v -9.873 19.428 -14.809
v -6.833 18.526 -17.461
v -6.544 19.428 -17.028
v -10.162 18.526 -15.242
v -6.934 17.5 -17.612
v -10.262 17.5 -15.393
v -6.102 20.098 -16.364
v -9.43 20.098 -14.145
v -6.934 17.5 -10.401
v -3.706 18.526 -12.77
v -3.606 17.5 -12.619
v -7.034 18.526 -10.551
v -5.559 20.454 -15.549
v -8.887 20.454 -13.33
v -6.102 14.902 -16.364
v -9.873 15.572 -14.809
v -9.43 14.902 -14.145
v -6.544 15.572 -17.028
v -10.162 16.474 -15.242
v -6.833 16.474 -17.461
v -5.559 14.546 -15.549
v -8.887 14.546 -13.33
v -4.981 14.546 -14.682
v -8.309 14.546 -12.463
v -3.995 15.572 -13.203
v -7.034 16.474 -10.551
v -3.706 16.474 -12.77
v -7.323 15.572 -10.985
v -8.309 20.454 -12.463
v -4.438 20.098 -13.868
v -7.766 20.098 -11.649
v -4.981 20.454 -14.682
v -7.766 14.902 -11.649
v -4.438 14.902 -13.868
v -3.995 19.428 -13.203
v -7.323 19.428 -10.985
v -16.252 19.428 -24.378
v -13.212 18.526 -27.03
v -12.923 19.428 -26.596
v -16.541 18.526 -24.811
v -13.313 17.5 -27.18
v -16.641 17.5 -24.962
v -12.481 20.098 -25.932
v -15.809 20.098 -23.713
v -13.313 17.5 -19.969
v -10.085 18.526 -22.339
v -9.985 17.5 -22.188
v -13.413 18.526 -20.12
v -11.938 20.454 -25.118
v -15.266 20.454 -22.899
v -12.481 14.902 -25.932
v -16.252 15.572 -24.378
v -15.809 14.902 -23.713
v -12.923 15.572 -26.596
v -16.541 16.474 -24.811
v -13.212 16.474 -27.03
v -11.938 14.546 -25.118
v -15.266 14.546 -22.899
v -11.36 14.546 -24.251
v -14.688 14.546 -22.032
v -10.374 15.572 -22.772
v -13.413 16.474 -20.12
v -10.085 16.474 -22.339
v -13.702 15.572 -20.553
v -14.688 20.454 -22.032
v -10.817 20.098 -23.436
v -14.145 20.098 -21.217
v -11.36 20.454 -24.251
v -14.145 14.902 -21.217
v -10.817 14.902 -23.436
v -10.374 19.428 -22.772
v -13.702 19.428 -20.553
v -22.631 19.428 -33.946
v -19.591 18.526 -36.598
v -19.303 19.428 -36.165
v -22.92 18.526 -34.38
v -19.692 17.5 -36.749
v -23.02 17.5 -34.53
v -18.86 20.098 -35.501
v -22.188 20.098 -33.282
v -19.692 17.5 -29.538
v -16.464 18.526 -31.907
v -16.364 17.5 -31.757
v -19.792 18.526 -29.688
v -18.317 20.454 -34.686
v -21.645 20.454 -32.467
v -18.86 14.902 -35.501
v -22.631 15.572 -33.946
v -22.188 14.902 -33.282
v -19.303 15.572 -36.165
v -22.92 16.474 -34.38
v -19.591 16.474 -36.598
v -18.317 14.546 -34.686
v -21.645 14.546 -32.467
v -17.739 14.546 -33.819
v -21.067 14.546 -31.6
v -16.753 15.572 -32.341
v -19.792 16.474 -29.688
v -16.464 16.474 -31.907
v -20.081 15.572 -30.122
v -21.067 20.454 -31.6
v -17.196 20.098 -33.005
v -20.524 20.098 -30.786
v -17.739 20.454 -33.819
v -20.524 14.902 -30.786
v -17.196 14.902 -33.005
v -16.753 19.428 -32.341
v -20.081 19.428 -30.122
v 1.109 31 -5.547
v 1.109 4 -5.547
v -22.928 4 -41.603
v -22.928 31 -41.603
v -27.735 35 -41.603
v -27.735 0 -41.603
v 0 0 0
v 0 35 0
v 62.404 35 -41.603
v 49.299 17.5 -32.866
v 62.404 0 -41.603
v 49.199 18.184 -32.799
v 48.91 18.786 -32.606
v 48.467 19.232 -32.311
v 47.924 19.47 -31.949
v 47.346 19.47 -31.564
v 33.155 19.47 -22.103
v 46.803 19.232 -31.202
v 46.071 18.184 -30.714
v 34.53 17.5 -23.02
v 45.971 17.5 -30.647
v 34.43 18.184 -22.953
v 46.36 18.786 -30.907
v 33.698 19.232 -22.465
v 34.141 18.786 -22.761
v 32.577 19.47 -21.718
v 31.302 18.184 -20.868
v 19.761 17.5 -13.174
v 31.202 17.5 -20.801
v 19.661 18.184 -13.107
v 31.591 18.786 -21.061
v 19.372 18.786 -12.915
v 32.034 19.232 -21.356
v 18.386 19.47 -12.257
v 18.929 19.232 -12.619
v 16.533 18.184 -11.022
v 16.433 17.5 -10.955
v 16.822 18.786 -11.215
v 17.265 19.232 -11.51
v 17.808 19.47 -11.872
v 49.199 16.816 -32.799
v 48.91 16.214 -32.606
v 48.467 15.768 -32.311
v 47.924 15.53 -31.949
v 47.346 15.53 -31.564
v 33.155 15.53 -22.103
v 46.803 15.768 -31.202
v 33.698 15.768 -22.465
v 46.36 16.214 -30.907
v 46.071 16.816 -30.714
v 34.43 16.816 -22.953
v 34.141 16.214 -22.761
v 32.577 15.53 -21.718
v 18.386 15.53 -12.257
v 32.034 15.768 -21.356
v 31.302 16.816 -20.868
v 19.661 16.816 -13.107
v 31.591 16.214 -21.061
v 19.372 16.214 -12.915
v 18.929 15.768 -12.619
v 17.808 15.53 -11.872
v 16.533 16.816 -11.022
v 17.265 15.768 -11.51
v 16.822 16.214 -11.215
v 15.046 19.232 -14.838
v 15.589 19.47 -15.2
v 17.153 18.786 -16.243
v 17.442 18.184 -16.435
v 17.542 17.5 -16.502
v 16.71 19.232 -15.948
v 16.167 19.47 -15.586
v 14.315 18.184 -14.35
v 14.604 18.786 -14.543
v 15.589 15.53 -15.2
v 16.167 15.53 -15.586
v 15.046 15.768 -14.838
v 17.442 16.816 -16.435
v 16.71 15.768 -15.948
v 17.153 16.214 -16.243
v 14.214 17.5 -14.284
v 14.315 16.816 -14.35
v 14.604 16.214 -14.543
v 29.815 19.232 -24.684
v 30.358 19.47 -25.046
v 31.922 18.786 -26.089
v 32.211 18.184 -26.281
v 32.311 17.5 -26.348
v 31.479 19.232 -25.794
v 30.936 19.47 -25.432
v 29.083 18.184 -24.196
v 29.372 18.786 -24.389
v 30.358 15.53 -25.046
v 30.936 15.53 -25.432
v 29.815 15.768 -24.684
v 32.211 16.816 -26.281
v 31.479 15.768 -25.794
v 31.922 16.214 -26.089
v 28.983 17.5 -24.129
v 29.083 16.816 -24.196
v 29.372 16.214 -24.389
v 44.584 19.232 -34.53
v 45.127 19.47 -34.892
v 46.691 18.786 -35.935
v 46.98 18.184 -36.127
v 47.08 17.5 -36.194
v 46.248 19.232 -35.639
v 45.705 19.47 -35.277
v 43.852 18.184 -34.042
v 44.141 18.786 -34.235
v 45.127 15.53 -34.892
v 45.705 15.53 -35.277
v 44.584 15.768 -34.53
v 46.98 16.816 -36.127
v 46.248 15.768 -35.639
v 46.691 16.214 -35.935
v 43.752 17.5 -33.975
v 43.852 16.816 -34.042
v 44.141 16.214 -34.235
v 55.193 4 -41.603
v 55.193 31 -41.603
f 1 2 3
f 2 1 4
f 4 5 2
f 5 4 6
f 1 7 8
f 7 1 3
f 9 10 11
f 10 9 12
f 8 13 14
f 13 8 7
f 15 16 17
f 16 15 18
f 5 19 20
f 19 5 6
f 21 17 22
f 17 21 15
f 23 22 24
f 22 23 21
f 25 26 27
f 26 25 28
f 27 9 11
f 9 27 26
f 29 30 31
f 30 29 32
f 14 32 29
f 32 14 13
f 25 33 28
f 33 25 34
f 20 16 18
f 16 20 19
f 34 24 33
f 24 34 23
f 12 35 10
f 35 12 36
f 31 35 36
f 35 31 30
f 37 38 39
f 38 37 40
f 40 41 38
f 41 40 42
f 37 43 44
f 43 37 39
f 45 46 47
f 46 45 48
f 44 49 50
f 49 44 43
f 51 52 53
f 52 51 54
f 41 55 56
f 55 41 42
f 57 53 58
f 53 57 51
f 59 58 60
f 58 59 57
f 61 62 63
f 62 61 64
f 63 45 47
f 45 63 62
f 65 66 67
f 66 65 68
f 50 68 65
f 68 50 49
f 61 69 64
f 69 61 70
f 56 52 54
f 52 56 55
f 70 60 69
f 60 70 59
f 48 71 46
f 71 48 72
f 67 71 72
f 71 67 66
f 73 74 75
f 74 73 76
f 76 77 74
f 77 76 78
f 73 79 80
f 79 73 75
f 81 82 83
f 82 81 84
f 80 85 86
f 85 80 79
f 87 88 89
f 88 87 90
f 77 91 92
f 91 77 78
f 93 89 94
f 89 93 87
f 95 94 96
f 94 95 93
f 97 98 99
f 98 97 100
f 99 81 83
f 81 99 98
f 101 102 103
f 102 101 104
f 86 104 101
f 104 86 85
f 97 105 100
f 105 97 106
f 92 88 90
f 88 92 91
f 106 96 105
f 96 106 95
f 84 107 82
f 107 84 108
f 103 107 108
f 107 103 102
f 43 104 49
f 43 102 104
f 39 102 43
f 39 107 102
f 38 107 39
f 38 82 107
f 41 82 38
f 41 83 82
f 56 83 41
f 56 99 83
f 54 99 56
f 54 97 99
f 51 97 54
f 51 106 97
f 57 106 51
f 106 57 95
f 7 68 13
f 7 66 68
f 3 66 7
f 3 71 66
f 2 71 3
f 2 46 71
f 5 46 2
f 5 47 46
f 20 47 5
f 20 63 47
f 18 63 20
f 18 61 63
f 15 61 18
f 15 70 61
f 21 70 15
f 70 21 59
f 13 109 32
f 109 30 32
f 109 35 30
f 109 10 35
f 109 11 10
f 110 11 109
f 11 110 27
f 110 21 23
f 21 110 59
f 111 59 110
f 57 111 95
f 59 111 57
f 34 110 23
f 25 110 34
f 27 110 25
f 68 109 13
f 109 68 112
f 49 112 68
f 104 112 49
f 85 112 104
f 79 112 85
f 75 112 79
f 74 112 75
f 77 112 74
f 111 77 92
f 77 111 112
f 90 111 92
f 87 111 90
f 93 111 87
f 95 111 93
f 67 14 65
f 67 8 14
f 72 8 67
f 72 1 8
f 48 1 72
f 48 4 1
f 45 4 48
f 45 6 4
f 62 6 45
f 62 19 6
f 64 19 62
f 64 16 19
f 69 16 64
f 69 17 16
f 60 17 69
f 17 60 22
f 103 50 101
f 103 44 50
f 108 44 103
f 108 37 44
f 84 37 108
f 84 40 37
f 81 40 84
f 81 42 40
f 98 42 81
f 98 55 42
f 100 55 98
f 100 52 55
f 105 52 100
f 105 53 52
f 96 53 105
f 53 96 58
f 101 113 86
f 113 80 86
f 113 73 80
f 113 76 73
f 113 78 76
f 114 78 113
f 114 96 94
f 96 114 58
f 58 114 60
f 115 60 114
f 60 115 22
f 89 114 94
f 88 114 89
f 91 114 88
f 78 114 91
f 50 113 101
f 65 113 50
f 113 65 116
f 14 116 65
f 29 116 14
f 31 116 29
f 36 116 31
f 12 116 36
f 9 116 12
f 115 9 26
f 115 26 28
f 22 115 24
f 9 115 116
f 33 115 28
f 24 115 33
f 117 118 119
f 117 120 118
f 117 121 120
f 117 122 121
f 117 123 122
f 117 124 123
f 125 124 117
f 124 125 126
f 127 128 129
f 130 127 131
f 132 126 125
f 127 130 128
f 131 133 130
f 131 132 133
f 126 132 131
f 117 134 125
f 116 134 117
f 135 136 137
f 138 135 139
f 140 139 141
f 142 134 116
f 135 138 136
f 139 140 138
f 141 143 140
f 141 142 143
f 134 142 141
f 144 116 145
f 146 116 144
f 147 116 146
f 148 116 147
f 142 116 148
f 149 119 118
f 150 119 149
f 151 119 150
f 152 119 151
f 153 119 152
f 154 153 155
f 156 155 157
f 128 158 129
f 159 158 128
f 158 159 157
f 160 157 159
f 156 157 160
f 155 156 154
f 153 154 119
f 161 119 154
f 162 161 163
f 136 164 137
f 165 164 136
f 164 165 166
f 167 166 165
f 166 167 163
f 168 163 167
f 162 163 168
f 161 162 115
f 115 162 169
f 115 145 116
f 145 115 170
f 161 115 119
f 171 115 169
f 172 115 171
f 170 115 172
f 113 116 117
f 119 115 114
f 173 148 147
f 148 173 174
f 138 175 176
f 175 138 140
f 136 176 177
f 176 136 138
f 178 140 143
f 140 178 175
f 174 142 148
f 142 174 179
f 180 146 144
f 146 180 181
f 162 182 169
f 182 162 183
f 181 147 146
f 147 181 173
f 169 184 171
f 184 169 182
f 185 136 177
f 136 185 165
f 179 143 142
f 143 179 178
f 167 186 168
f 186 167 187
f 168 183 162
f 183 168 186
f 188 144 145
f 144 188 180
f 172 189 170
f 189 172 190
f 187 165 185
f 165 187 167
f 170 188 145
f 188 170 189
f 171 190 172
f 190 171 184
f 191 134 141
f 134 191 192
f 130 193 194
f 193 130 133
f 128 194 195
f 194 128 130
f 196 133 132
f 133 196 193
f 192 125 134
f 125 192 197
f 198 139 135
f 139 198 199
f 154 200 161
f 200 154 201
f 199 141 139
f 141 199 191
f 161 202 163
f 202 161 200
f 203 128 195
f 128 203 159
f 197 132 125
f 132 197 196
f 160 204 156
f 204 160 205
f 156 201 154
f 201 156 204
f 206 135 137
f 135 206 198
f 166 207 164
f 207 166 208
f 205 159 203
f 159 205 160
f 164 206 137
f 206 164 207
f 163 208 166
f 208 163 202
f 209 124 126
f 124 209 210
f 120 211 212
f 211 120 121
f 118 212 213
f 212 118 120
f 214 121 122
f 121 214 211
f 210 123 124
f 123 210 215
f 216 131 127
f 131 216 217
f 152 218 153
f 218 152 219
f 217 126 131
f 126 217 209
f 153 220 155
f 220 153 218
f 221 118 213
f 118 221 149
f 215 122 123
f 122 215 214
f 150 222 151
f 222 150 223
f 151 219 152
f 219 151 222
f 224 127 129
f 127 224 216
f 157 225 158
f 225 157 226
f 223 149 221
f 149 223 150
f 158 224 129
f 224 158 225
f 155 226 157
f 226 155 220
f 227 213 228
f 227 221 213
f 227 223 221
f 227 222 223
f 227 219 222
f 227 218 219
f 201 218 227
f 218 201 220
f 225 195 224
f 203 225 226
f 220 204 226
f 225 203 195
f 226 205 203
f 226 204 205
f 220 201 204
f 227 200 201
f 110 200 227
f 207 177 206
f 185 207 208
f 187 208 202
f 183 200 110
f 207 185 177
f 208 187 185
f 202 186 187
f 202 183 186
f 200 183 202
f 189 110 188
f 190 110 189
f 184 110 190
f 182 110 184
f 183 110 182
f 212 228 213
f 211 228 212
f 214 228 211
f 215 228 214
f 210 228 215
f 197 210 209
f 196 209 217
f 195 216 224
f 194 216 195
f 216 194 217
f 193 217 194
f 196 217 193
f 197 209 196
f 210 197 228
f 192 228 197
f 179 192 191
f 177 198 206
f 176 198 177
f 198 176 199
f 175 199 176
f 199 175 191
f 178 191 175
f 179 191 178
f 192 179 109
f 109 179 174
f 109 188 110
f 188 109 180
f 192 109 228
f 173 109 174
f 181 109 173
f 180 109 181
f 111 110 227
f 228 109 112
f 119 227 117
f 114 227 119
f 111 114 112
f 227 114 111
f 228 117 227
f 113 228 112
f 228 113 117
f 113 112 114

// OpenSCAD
/*
	module shelf_bracket

	parameters:
	- side_a	is a vector [length, hole diameter, number of holes]
	- side_b	is a vector [length, hole diameter, number of holes]
	- width		refers to the width of the bracket
	- thickness	refers to the material thickness of the bracket
*/

module shelf_bracket( side_a, side_b, width, thickness, rotate_it = false ) {

	module xhole_plate(size, h_dm, h_num, margin) {
		difference(){
			cube(size);

			h_distance = (size.x - margin) / (h_num + 1);
			
			for ( x = [1:h_num])
			translate ([
				margin + x * h_distance,
				size.y / 2,
				-1
			])
			cylinder(d = h_dm, h = size.z + 2, $fn=18);
		}
	}


	diag = 	sqrt( pow(side_a[0], 2) + pow(side_b[0], 2) );
	angle =	asin( side_a[0] / diag ); 

	rotate( [0, rotate_it ? 90 + angle : 0, 0] )

	difference() {

		union() {

			// side A
			xhole_plate(
				[side_a[0], width, thickness],
				side_a[1],
				side_b[2],
				thickness
			);

			// side B

			translate([ thickness, 0, 0 ])
			rotate([0, -90, 0])
			xhole_plate(
				[side_b[0], width, thickness],
				side_b[1],
				side_b[2],
				thickness
			);

			// stringer A
			cube( [side_a[0], thickness, side_b[0]] );

			translate([0, width - thickness, 0])
			cube( [side_a[0], thickness, side_b[0]]);
		
		}

	
		translate( [side_a[0], -1, 0])
		rotate( [0, -angle, 0])
		cube( [diag, width + 2, diag + 2]);
		
	}

}

module output(templates = false) {

	if (templates) {

		projection(cut = true)
		children(0);

		translate( [0.01, 0, 0] )
		projection(cut = true)
		rotate( [0, -90, 0] )
		children(0);

	} else {

		children(0);

	}

}

output(templates = false)

shelf_bracket(
	side_a		= [50, 6, 1],
	side_b		= [75, 4, 3],
	width		= 35,
	thickness	= 4,
	rotate_it 	= true
);
